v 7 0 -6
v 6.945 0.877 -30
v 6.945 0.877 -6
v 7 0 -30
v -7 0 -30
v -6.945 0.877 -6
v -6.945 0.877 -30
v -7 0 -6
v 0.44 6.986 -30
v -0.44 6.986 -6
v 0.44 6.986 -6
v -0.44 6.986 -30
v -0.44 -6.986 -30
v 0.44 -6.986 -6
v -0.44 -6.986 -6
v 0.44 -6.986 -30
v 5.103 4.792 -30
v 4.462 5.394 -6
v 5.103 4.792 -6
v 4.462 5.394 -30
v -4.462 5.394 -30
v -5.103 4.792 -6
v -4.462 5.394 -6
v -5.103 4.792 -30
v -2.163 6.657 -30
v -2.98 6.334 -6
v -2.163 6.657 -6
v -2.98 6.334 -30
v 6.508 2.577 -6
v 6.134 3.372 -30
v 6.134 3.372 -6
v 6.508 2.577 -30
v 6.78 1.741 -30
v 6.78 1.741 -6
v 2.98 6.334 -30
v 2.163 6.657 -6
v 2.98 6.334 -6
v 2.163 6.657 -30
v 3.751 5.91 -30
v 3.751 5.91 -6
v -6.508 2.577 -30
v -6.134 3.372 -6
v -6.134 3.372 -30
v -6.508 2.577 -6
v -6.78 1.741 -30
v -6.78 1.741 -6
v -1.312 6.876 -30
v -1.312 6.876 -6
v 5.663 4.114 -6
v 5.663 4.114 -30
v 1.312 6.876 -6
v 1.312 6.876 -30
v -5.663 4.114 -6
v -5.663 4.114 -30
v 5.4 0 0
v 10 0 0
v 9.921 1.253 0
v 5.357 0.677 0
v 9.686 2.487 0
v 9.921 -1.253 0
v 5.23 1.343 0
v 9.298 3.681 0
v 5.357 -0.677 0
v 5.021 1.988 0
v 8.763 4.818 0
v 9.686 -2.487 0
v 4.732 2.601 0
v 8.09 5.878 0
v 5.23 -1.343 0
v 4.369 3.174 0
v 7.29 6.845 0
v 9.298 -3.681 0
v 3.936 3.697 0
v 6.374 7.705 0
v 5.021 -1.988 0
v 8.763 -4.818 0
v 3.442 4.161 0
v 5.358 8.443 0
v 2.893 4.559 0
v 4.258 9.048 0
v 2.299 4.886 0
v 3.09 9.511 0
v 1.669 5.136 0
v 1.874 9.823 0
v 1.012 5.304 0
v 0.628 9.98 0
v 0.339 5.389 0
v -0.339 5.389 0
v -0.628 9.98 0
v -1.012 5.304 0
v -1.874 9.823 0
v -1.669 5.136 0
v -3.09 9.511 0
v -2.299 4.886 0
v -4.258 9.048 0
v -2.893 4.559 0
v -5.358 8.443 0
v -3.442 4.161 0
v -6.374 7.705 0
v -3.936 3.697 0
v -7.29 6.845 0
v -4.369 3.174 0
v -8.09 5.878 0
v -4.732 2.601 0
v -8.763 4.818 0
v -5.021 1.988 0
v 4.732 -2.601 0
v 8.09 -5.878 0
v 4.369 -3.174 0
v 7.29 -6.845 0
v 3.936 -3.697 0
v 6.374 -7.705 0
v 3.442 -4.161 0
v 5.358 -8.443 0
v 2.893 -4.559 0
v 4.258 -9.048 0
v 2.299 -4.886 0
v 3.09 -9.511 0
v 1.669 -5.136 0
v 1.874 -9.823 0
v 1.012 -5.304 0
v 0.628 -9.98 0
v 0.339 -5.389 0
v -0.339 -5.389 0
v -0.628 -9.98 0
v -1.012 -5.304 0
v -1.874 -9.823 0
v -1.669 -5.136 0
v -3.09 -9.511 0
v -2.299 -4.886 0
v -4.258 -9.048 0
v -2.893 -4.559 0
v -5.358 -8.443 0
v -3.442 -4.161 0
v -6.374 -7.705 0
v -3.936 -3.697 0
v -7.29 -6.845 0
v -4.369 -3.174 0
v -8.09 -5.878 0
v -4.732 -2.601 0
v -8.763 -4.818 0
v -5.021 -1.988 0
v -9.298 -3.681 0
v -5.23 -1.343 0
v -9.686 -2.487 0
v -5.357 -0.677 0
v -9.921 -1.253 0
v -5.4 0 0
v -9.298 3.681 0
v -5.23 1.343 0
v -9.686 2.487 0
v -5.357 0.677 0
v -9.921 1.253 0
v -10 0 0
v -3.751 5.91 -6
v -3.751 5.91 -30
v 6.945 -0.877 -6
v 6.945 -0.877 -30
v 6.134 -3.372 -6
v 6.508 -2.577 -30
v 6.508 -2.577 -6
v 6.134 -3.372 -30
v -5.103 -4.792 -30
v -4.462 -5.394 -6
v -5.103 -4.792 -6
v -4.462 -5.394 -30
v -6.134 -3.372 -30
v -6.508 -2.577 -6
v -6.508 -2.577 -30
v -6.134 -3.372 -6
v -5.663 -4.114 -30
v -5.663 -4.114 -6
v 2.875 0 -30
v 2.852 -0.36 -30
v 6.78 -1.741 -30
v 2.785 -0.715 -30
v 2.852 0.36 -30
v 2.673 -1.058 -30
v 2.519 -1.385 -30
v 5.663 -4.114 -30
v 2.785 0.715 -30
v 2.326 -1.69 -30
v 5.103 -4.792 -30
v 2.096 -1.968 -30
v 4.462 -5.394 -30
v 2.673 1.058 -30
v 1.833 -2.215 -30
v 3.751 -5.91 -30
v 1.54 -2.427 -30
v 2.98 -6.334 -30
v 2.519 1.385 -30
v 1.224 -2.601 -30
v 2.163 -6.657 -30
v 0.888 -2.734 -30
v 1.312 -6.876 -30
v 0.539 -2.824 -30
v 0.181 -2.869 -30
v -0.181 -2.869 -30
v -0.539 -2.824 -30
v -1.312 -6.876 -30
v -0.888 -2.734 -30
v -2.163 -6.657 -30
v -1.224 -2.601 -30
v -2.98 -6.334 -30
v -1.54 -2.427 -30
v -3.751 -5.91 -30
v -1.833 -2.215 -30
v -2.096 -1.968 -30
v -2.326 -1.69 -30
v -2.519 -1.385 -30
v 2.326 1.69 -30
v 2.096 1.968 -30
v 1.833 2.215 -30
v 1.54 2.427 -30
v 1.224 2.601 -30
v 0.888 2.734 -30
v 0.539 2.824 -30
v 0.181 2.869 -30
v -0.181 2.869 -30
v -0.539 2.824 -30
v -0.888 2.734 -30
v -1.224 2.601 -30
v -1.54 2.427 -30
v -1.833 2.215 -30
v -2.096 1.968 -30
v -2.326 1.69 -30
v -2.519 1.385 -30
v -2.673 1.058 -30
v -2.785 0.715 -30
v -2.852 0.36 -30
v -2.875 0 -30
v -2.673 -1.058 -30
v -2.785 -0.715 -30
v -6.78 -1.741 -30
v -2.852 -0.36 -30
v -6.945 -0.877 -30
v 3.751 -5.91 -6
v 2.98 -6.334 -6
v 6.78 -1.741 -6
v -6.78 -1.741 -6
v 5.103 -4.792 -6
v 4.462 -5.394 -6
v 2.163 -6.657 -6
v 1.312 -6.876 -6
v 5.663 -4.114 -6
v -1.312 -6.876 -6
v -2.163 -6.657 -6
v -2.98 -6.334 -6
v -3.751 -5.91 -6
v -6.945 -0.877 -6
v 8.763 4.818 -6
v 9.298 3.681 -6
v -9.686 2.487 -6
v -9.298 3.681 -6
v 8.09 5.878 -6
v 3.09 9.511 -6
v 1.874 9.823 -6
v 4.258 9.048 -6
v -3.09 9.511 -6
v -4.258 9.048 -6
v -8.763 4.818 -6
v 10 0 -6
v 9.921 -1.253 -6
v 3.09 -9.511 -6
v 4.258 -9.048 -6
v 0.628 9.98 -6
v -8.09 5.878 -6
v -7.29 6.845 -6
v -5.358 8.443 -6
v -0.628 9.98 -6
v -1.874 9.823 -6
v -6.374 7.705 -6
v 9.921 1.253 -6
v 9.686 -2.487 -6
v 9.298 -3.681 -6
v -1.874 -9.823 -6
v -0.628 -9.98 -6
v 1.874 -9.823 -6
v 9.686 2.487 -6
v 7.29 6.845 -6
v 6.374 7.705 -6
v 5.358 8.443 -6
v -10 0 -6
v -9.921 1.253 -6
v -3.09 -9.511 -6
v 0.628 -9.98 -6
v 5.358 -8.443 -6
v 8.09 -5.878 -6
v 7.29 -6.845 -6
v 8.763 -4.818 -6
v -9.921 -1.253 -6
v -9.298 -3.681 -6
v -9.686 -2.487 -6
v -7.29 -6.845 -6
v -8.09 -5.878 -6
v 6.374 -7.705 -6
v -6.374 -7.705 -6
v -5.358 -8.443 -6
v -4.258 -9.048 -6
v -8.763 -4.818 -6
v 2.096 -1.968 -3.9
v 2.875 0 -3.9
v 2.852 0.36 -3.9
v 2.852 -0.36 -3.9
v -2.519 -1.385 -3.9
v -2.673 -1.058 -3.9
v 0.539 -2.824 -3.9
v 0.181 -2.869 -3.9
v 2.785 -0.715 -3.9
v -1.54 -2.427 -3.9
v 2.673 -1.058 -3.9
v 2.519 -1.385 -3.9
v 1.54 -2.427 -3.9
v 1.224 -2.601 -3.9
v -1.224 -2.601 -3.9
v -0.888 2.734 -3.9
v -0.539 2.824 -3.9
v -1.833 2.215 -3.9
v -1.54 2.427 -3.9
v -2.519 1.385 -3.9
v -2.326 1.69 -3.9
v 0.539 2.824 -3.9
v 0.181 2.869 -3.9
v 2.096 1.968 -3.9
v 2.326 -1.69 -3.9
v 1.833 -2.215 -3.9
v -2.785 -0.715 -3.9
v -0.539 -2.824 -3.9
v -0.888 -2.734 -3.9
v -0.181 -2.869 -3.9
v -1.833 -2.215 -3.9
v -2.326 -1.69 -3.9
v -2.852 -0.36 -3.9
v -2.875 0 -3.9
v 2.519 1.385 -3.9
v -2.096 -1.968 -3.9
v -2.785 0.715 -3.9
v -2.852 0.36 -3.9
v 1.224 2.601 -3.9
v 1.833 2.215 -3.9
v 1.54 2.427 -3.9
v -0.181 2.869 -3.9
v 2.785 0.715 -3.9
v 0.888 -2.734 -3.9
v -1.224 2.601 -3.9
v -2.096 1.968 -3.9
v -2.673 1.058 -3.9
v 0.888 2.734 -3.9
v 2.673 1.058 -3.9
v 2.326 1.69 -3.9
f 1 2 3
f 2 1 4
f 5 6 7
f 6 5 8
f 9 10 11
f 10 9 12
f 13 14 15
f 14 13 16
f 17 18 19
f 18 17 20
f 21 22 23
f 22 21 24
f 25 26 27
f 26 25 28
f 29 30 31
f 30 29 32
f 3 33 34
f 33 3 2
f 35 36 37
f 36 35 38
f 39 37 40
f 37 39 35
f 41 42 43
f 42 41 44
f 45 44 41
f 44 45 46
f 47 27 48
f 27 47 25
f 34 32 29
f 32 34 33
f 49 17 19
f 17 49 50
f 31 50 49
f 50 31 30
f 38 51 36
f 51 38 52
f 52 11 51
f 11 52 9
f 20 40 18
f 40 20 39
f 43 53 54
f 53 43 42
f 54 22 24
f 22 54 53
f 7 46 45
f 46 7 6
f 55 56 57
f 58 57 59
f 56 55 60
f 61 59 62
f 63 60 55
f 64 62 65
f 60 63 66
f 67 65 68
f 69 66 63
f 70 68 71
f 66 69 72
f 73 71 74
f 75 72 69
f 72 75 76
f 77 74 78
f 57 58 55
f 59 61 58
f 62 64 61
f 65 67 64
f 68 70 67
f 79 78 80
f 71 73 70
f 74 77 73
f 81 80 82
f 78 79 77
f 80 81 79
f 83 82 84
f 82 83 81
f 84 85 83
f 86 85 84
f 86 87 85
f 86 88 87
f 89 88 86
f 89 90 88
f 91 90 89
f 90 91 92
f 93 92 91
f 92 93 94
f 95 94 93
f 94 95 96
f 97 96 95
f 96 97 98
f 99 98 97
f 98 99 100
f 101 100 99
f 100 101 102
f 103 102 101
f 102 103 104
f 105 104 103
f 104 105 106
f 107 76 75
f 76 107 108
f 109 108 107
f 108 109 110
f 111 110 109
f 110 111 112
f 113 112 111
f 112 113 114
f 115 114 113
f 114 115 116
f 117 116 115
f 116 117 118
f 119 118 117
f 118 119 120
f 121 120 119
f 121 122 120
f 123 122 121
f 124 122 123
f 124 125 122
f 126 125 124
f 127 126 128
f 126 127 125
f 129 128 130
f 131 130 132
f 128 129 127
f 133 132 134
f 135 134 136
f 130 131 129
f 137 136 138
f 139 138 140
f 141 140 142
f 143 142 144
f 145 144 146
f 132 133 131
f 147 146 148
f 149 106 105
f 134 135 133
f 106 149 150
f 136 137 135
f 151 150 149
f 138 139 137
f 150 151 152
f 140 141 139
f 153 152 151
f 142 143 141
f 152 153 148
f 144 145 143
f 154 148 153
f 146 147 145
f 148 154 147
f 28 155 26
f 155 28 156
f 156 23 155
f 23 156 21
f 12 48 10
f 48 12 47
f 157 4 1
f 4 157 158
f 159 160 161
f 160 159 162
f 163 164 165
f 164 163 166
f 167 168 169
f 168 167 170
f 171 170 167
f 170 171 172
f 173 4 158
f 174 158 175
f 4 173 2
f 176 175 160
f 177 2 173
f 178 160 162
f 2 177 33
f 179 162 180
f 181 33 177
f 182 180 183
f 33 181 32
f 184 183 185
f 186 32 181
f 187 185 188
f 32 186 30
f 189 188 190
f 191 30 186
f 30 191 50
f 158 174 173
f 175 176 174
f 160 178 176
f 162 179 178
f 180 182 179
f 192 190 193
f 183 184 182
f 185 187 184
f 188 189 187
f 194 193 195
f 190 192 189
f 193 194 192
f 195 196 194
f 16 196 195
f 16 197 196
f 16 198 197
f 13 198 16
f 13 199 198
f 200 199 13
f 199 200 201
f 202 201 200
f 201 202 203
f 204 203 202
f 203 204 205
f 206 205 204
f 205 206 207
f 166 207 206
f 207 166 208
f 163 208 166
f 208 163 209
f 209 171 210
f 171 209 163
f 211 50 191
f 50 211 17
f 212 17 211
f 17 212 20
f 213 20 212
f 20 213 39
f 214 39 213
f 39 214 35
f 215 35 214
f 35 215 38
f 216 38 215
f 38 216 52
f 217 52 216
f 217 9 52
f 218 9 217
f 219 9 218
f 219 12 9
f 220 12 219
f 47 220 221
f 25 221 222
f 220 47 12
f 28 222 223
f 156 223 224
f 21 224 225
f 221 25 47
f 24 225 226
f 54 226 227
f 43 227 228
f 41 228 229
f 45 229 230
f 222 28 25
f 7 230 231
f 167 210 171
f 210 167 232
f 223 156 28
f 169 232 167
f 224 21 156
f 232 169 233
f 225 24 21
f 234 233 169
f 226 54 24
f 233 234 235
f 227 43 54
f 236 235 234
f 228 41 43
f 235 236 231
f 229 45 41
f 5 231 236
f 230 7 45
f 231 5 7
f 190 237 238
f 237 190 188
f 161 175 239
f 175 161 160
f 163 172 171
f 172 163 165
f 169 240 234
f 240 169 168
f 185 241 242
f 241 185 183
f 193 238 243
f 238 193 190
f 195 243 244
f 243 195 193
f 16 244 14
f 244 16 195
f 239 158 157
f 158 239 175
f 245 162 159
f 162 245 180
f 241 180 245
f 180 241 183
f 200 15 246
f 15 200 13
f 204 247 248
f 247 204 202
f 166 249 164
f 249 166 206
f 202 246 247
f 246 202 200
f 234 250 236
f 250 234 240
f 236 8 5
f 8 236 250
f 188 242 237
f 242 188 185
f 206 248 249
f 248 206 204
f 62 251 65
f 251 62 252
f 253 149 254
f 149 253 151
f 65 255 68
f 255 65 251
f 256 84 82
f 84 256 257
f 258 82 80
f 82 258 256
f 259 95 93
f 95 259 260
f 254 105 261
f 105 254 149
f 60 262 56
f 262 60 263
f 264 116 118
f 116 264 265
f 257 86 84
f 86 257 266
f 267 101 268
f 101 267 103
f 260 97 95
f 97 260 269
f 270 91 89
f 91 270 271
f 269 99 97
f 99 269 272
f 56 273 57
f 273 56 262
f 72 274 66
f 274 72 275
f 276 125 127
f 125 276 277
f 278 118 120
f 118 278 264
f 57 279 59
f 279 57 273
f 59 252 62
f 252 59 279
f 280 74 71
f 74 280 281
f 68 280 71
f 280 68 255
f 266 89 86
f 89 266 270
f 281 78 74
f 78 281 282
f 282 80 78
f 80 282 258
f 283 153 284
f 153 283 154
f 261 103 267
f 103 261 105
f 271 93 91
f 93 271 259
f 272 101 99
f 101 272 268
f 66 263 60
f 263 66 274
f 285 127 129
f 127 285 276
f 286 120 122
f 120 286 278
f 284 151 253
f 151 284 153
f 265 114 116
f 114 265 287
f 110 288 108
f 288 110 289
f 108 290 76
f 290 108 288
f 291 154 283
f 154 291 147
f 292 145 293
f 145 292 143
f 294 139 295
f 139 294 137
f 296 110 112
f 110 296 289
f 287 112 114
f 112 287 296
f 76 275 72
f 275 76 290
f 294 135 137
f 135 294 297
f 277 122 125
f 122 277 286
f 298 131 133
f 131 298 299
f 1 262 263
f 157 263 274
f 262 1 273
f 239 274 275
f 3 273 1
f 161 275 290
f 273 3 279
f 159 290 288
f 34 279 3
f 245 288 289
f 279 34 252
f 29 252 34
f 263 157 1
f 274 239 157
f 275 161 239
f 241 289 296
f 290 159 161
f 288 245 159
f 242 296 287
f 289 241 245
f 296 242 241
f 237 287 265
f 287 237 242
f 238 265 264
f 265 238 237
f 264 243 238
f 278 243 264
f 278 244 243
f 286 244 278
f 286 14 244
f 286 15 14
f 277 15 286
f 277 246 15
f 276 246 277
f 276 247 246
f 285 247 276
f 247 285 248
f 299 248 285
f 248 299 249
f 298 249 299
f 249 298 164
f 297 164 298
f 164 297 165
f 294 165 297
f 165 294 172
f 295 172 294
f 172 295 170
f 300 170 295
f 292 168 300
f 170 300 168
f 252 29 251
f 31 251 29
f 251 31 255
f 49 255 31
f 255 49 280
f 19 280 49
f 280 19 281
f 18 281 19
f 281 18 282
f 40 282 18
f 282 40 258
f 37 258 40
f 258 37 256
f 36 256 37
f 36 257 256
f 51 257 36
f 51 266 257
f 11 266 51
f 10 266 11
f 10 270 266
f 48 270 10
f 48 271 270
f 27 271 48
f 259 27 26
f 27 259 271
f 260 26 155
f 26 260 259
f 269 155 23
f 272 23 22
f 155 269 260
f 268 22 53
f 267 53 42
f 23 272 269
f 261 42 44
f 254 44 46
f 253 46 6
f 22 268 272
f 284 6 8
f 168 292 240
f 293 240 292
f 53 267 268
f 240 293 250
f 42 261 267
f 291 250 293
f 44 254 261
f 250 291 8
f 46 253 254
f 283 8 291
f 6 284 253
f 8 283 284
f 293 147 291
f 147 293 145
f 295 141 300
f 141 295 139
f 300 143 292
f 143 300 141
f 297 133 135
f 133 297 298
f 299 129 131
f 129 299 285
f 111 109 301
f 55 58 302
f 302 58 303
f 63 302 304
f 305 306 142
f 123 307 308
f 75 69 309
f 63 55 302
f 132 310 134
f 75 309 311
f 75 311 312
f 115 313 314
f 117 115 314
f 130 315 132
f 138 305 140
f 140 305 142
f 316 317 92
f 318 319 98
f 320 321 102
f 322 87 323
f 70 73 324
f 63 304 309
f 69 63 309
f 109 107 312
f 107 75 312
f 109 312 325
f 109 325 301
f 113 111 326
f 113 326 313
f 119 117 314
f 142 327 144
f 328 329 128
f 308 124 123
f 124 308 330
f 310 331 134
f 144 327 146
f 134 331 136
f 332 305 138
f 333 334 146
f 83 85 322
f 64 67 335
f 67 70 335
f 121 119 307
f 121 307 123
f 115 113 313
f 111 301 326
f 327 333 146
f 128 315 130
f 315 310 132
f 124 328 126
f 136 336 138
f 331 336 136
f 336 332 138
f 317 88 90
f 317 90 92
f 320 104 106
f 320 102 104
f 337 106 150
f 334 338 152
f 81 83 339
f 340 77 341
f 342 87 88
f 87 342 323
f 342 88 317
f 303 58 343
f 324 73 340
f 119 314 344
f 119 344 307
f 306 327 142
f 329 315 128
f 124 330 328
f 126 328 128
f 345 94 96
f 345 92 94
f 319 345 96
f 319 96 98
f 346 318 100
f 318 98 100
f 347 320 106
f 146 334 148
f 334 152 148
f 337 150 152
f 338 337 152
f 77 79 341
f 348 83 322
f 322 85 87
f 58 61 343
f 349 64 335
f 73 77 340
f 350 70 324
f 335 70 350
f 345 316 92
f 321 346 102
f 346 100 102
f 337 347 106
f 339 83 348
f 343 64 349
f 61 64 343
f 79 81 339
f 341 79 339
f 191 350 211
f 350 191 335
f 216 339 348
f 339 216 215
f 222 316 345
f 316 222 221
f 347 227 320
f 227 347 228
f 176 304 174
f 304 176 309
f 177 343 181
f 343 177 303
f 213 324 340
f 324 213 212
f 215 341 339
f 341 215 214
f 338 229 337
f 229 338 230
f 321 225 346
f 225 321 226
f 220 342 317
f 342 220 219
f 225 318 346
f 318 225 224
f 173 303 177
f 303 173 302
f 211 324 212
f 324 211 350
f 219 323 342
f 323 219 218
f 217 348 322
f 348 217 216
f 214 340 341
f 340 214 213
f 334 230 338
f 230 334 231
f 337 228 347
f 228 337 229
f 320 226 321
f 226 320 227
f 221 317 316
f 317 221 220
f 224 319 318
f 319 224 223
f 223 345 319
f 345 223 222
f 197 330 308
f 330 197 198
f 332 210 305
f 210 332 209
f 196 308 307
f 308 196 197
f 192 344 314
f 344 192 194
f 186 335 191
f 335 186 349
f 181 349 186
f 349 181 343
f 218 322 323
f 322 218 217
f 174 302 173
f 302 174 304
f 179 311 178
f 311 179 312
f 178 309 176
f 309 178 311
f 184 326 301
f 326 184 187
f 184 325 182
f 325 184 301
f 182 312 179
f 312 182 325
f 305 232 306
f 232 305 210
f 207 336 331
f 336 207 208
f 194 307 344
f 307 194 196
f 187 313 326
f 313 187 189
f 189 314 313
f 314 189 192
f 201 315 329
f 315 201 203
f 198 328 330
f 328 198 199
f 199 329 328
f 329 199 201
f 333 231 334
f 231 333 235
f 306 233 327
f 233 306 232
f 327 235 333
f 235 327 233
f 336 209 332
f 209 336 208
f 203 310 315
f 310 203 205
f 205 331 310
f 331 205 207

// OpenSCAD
$fn = 50;


difference() {
	union() {
		translate(v = [0, 0, -30.0000000000]) {
			cylinder(h = 30, r = 7.0000000000);
		}
		translate(v = [0, 0, -6.0000000000]) {
			cylinder(h = 6, r = 10.0000000000);
		}
	}
	union() {
		translate(v = [0, 0, 0]) {
			rotate(a = [0, 0, 0]) {
				difference() {
					union() {
						#translate(v = [0, 0, -30.0000000000]) {
							cylinder(h = 30, r = 2.6000000000);
						}
						#translate(v = [0, 0, -3.9000000000]) {
							cylinder(h = 3.9000000000, r = 7.0000000000, r1 = 2.8750000000, r2 = 5.4000000000);
						}
						#translate(v = [0, 0, -30.0000000000]) {
							cylinder(h = 30, r = 2.8750000000);
						}
						#translate(v = [0, 0, -30.0000000000]) {
							cylinder(h = 30, r = 2.6000000000);
						}
					}
					union();
				}
			}
		}
	}
}
